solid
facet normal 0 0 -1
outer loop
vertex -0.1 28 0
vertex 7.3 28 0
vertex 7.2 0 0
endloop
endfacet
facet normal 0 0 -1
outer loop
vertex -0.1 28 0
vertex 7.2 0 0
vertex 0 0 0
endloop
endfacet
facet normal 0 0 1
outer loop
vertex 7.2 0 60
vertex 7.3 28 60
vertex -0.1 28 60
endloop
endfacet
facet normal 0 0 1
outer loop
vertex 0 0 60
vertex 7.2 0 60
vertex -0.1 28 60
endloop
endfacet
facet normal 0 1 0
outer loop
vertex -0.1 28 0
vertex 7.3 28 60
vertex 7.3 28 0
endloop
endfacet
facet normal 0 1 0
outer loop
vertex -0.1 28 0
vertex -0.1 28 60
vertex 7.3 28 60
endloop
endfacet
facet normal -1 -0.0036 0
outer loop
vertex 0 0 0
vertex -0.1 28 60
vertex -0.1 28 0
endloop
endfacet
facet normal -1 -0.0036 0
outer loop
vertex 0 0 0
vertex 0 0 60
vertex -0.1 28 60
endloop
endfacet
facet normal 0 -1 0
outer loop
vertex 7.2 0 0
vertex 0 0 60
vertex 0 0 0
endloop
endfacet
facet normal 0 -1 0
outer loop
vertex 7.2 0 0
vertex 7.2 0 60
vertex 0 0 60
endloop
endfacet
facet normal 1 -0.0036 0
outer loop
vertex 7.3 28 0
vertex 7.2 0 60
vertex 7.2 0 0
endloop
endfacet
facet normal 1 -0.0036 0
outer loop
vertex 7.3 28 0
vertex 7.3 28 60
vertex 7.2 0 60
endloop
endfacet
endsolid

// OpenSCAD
// A polygon extruded as a piece to repair a strut
linear_extrude(60) polygon(points=[[0,0],[7.2,0],[7.3,28],[-.1,28]]);
